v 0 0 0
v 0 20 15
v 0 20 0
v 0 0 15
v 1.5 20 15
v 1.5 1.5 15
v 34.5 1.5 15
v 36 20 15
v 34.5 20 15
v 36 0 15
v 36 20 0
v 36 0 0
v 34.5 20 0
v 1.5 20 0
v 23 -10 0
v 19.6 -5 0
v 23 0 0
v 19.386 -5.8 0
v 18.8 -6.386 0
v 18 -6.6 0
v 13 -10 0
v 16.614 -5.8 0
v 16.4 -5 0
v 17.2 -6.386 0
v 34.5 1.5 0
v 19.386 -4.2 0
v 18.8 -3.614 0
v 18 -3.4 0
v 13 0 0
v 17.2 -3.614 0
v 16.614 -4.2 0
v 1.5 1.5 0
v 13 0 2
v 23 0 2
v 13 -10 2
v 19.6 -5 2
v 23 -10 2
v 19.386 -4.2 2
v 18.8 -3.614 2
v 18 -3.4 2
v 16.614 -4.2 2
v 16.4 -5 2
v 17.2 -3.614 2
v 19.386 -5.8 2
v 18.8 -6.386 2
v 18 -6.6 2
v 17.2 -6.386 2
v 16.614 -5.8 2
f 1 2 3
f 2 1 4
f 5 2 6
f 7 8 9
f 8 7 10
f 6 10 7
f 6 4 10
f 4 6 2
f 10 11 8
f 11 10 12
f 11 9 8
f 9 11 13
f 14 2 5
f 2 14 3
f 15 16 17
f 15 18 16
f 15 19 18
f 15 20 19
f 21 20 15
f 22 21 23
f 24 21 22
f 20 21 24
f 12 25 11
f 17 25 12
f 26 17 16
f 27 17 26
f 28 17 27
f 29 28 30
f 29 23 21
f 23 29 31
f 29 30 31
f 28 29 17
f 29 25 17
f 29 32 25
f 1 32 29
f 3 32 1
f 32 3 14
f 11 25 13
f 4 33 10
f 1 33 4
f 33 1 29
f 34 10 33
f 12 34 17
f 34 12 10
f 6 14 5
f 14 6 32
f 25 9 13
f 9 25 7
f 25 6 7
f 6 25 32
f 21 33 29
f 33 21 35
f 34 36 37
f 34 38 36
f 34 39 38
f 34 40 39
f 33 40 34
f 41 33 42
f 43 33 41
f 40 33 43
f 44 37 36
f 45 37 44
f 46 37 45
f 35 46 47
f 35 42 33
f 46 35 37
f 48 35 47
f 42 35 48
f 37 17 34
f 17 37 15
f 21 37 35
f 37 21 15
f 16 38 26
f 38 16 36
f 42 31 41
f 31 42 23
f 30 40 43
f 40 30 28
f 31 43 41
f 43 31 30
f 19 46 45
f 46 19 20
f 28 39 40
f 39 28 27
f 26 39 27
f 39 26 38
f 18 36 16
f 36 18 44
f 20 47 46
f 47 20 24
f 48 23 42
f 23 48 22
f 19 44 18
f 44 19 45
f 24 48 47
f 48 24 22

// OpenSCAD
difference(){
    cube([36,20,15]);
    translate([1.5,1.5,0])cube([33,20,20]);
}
difference(){
translate([13,-10,0])cube([10,10,2]);
translate([18,-5,-1])cylinder(d=3.2,h=4,$fn=12);
}
